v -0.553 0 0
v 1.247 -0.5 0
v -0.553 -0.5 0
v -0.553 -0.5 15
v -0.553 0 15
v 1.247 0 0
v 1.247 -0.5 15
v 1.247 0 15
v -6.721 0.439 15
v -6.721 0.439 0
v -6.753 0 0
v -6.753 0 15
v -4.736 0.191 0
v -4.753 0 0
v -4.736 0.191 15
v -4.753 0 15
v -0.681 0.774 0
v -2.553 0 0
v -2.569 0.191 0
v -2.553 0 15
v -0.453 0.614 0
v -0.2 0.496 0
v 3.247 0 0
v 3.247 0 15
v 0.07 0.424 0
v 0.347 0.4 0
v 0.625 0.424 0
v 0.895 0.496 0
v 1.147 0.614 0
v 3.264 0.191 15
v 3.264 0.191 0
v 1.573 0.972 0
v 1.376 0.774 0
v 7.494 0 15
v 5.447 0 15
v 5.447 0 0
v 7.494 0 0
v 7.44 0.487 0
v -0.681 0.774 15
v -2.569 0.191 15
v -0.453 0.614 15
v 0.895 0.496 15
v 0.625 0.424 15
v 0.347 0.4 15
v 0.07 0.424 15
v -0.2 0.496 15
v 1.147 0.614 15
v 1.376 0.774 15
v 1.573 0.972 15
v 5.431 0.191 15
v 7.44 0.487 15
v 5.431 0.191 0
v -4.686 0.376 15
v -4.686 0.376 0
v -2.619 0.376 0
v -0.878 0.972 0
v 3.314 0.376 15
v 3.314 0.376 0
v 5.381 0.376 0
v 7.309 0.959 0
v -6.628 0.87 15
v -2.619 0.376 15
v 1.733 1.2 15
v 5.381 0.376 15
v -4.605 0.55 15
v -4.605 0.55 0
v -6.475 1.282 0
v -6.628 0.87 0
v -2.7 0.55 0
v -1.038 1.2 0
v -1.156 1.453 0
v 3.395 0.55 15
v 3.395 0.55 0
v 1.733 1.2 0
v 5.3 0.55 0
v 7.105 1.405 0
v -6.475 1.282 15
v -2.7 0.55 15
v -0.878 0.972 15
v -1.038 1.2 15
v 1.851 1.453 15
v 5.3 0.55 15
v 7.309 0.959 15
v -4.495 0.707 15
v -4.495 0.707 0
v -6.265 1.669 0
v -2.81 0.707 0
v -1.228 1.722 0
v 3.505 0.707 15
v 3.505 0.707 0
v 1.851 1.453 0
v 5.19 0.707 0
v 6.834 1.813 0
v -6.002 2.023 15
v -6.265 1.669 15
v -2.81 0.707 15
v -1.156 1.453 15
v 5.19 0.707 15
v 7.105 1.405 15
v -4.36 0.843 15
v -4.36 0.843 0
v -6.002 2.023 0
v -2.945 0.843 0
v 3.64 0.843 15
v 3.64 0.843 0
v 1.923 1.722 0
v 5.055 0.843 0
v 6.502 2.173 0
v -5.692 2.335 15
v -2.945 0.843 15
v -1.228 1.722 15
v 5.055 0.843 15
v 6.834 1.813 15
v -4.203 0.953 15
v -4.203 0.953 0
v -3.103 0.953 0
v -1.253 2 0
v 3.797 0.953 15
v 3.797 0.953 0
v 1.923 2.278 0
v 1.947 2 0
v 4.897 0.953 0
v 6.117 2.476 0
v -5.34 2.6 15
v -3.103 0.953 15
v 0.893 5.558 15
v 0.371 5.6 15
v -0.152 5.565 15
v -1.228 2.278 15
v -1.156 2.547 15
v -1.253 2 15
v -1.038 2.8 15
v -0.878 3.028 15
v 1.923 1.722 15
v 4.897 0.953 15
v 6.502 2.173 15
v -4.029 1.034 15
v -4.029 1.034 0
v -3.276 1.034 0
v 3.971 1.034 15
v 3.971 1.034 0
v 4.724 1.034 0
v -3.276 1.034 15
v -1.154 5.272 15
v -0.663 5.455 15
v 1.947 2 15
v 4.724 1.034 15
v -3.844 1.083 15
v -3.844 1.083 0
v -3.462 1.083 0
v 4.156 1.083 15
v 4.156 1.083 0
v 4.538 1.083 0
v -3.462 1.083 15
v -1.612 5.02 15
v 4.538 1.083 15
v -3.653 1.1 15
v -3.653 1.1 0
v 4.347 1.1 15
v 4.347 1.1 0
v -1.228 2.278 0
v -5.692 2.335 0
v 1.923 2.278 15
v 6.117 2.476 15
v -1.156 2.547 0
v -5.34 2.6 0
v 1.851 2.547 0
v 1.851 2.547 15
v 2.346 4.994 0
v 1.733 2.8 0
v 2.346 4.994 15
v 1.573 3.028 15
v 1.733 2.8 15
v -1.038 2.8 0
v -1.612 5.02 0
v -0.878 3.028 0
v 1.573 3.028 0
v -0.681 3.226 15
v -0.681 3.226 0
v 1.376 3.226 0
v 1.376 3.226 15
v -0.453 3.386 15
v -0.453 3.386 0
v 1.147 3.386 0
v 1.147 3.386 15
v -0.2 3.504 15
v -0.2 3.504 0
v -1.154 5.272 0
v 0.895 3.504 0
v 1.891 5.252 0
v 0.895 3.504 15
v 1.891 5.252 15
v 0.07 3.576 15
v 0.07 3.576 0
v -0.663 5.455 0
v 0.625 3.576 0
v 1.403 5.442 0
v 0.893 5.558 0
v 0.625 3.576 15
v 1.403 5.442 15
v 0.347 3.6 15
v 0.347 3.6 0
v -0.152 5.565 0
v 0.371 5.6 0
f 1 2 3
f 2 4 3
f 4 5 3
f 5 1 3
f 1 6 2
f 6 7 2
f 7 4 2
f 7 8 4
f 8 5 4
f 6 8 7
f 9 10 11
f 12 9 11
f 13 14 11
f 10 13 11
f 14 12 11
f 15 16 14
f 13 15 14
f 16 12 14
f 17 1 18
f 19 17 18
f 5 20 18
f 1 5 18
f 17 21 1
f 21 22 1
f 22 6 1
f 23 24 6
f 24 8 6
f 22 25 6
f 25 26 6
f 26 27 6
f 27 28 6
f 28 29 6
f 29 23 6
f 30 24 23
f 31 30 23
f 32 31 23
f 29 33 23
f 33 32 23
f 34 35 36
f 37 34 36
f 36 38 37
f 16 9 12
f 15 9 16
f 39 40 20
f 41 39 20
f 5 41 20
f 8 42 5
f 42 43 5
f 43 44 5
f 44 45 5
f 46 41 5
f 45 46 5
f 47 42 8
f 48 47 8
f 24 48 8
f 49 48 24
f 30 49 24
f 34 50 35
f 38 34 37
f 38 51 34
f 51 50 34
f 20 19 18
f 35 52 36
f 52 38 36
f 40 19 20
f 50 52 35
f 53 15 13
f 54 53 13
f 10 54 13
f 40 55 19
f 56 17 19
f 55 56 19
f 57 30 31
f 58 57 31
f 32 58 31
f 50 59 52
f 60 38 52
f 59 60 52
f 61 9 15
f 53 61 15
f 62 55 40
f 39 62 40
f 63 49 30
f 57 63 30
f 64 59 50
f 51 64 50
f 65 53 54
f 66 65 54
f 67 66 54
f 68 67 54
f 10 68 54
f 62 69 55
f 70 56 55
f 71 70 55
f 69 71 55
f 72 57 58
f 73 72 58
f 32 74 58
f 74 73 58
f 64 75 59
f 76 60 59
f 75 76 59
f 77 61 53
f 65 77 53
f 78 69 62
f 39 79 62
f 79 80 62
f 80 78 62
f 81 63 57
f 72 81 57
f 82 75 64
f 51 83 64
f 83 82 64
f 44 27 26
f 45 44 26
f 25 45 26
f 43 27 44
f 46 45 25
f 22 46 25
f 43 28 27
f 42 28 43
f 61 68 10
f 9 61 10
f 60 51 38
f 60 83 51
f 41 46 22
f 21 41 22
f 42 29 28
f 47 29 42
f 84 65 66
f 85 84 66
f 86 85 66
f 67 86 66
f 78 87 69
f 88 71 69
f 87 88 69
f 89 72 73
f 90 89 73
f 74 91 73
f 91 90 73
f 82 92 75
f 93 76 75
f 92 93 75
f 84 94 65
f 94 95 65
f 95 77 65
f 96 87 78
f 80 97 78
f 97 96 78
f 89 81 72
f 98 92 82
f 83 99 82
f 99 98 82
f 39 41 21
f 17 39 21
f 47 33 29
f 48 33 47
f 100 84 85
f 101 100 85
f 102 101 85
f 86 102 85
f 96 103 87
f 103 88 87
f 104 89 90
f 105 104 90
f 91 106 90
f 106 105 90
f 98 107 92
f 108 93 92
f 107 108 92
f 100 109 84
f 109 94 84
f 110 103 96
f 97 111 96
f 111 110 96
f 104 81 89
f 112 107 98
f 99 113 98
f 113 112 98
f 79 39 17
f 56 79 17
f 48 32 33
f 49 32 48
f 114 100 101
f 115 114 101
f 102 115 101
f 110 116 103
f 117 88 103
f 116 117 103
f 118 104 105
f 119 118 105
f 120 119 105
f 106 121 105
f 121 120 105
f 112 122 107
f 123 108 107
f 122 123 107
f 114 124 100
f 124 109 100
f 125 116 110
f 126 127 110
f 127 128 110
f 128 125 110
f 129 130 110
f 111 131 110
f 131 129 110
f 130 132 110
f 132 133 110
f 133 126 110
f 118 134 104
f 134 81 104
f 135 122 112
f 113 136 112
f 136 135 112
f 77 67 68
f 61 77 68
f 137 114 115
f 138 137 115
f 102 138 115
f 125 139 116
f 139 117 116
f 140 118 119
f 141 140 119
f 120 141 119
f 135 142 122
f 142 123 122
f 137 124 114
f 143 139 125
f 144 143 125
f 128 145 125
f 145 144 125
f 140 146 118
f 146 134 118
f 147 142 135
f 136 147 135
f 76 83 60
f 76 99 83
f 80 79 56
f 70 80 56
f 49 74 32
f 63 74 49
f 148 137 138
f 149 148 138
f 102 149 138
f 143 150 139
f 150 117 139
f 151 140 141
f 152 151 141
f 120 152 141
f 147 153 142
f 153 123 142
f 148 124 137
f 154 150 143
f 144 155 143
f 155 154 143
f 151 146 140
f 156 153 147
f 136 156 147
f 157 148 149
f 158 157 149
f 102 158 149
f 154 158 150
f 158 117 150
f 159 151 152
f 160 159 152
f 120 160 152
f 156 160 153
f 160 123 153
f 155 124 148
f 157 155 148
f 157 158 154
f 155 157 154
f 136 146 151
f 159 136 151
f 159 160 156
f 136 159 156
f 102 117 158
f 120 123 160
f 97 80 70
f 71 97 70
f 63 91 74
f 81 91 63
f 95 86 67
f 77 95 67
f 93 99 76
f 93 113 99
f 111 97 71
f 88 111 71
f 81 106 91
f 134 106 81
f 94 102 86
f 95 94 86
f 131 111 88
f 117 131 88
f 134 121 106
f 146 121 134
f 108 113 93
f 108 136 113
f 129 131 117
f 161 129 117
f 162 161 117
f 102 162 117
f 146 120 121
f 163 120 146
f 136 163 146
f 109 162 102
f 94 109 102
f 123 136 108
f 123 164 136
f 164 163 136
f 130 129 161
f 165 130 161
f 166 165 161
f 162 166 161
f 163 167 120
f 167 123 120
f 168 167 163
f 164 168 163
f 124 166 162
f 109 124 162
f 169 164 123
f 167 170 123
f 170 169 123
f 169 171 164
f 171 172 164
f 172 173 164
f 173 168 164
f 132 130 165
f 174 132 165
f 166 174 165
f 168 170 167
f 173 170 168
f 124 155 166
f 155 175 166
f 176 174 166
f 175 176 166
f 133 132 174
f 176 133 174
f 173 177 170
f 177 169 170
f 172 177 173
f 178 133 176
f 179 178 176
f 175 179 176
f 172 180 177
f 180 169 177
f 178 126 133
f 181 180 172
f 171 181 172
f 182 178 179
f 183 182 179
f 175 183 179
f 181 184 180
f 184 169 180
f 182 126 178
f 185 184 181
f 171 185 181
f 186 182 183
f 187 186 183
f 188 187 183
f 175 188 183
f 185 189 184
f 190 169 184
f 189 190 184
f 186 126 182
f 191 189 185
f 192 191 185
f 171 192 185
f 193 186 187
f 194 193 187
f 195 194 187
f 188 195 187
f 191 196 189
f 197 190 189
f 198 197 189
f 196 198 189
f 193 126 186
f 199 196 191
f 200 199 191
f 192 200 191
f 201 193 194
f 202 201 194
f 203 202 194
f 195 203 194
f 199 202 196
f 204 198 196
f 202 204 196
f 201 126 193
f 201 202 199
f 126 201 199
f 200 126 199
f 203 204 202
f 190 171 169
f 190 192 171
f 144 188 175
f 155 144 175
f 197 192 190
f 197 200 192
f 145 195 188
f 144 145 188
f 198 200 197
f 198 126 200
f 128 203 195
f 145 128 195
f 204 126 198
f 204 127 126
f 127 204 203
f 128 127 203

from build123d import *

# Parameters (mm, degrees)
SKETCH1_R           = 1.1
SKETCH1_R_2         = 1.6
BOSS_EXTRUDE1_DEPTH = 15
CUT_EXTRUDE1_DEPTH  = 15
SKETCH4_W           = 1.8
SKETCH4_H           = 0.5
BOSS_EXTRUDE2_DEPTH = 15


with BuildPart() as part:
    # Sketch1 → Boss-Extrude1 (new body)
    with BuildSketch(Plane.XY):
        with BuildLine():
            Line((-1.61243197, 5.01974999), (-5.34022711, 2.600340269))
            ThreePointArc((-5.34022711, 2.600340269), (-6.625018483, -0.880041239), (-3.652556975, -3.1))
            Line((-3.652556975, -3.1), (4.395993446, -3.201847309))
            ThreePointArc((4.395993446, -3.201847309), (7.362670385, -1.001195929), (6.117333323, 2.476328214))
            Line((6.117333323, 2.476328214), (2.346418367, 4.994010285))
            ThreePointArc((2.346418367, 4.994010285), (0.370849058, 5.59992391), (-1.61243197, 5.01974999))
        make_face()
        with Locations((4.347443025, 0)):
            Circle(SKETCH1_R, mode=Mode.SUBTRACT)
        with Locations((0.347443025, 2)):
            Circle(SKETCH1_R_2, mode=Mode.SUBTRACT)
        with Locations((-3.652556975, 0)):
            Circle(SKETCH1_R, mode=Mode.SUBTRACT)
    extrude(amount=BOSS_EXTRUDE1_DEPTH)

    # Sketch3 → Cut-Extrude1 (cut)
    with BuildSketch(Plane.XY.offset(15)):
        with BuildLine():
            Line((-3.652556975, -3.1), (-3.652556975, -1.1))
            ThreePointArc((-3.652556975, -1.1), (-4.430374434, -0.777817459), (-4.752556975, 0))
            Line((-4.752556975, 0), (-6.752556975, 0))
            ThreePointArc((-6.752556975, 0), (-5.844587997, -2.192031022), (-3.652556975, -3.1))
        make_face()
        with BuildLine():
            Line((3.247443025, 0), (-2.552556975, 0))
            ThreePointArc((-2.552556975, 0), (-2.874739516, -0.777817459), (-3.652556975, -1.1))
            Line((-3.652556975, -1.1), (-3.652556975, -3.1))
            Line((-3.652556975, -3.1), (4.395993446, -3.201847309))
            ThreePointArc((4.395993446, -3.201847309), (6.623741934, -2.257569154), (7.49431995, 0))
            Line((7.49431995, 0), (5.447443025, 0))
            ThreePointArc((5.447443025, 0), (4.347443025, -1.1), (3.247443025, 0))
        make_face()
        with BuildLine():
            Line((-3.652556975, -4.774585684), (-3.652556975, -3.1))
            ThreePointArc((-3.652556975, -3.1), (-5.844587997, -2.192031022), (-6.752556975, 0))
            Line((-6.752556975, 0), (-12.259555469, 0))
            Line((-12.259555469, 0), (-12.259555469, -4.774585684))
            Line((-12.259555469, -4.774585684), (-3.652556975, -4.774585684))
        make_face()
        with BuildLine():
            Line((4.395993446, -3.201847309), (-3.652556975, -3.1))
            Line((-3.652556975, -3.1), (-3.652556975, -4.774585684))
            Line((-3.652556975, -4.774585684), (12.655202498, -4.774585684))
            Line((12.655202498, -4.774585684), (12.655202498, 0))
            Line((12.655202498, 0), (7.49431995, 0))
            ThreePointArc((7.49431995, 0), (6.623741934, -2.257569154), (4.395993446, -3.201847309))
        make_face()
    extrude(amount=-CUT_EXTRUDE1_DEPTH, mode=Mode.SUBTRACT)

    # Sketch4 → Boss-Extrude2 (add)
    with BuildSketch(Plane.XY.offset(15)):
        with Locations((0.347443025, -0.25)):
            Rectangle(SKETCH4_W, SKETCH4_H)
    extrude(amount=-BOSS_EXTRUDE2_DEPTH)


solid = part.part
